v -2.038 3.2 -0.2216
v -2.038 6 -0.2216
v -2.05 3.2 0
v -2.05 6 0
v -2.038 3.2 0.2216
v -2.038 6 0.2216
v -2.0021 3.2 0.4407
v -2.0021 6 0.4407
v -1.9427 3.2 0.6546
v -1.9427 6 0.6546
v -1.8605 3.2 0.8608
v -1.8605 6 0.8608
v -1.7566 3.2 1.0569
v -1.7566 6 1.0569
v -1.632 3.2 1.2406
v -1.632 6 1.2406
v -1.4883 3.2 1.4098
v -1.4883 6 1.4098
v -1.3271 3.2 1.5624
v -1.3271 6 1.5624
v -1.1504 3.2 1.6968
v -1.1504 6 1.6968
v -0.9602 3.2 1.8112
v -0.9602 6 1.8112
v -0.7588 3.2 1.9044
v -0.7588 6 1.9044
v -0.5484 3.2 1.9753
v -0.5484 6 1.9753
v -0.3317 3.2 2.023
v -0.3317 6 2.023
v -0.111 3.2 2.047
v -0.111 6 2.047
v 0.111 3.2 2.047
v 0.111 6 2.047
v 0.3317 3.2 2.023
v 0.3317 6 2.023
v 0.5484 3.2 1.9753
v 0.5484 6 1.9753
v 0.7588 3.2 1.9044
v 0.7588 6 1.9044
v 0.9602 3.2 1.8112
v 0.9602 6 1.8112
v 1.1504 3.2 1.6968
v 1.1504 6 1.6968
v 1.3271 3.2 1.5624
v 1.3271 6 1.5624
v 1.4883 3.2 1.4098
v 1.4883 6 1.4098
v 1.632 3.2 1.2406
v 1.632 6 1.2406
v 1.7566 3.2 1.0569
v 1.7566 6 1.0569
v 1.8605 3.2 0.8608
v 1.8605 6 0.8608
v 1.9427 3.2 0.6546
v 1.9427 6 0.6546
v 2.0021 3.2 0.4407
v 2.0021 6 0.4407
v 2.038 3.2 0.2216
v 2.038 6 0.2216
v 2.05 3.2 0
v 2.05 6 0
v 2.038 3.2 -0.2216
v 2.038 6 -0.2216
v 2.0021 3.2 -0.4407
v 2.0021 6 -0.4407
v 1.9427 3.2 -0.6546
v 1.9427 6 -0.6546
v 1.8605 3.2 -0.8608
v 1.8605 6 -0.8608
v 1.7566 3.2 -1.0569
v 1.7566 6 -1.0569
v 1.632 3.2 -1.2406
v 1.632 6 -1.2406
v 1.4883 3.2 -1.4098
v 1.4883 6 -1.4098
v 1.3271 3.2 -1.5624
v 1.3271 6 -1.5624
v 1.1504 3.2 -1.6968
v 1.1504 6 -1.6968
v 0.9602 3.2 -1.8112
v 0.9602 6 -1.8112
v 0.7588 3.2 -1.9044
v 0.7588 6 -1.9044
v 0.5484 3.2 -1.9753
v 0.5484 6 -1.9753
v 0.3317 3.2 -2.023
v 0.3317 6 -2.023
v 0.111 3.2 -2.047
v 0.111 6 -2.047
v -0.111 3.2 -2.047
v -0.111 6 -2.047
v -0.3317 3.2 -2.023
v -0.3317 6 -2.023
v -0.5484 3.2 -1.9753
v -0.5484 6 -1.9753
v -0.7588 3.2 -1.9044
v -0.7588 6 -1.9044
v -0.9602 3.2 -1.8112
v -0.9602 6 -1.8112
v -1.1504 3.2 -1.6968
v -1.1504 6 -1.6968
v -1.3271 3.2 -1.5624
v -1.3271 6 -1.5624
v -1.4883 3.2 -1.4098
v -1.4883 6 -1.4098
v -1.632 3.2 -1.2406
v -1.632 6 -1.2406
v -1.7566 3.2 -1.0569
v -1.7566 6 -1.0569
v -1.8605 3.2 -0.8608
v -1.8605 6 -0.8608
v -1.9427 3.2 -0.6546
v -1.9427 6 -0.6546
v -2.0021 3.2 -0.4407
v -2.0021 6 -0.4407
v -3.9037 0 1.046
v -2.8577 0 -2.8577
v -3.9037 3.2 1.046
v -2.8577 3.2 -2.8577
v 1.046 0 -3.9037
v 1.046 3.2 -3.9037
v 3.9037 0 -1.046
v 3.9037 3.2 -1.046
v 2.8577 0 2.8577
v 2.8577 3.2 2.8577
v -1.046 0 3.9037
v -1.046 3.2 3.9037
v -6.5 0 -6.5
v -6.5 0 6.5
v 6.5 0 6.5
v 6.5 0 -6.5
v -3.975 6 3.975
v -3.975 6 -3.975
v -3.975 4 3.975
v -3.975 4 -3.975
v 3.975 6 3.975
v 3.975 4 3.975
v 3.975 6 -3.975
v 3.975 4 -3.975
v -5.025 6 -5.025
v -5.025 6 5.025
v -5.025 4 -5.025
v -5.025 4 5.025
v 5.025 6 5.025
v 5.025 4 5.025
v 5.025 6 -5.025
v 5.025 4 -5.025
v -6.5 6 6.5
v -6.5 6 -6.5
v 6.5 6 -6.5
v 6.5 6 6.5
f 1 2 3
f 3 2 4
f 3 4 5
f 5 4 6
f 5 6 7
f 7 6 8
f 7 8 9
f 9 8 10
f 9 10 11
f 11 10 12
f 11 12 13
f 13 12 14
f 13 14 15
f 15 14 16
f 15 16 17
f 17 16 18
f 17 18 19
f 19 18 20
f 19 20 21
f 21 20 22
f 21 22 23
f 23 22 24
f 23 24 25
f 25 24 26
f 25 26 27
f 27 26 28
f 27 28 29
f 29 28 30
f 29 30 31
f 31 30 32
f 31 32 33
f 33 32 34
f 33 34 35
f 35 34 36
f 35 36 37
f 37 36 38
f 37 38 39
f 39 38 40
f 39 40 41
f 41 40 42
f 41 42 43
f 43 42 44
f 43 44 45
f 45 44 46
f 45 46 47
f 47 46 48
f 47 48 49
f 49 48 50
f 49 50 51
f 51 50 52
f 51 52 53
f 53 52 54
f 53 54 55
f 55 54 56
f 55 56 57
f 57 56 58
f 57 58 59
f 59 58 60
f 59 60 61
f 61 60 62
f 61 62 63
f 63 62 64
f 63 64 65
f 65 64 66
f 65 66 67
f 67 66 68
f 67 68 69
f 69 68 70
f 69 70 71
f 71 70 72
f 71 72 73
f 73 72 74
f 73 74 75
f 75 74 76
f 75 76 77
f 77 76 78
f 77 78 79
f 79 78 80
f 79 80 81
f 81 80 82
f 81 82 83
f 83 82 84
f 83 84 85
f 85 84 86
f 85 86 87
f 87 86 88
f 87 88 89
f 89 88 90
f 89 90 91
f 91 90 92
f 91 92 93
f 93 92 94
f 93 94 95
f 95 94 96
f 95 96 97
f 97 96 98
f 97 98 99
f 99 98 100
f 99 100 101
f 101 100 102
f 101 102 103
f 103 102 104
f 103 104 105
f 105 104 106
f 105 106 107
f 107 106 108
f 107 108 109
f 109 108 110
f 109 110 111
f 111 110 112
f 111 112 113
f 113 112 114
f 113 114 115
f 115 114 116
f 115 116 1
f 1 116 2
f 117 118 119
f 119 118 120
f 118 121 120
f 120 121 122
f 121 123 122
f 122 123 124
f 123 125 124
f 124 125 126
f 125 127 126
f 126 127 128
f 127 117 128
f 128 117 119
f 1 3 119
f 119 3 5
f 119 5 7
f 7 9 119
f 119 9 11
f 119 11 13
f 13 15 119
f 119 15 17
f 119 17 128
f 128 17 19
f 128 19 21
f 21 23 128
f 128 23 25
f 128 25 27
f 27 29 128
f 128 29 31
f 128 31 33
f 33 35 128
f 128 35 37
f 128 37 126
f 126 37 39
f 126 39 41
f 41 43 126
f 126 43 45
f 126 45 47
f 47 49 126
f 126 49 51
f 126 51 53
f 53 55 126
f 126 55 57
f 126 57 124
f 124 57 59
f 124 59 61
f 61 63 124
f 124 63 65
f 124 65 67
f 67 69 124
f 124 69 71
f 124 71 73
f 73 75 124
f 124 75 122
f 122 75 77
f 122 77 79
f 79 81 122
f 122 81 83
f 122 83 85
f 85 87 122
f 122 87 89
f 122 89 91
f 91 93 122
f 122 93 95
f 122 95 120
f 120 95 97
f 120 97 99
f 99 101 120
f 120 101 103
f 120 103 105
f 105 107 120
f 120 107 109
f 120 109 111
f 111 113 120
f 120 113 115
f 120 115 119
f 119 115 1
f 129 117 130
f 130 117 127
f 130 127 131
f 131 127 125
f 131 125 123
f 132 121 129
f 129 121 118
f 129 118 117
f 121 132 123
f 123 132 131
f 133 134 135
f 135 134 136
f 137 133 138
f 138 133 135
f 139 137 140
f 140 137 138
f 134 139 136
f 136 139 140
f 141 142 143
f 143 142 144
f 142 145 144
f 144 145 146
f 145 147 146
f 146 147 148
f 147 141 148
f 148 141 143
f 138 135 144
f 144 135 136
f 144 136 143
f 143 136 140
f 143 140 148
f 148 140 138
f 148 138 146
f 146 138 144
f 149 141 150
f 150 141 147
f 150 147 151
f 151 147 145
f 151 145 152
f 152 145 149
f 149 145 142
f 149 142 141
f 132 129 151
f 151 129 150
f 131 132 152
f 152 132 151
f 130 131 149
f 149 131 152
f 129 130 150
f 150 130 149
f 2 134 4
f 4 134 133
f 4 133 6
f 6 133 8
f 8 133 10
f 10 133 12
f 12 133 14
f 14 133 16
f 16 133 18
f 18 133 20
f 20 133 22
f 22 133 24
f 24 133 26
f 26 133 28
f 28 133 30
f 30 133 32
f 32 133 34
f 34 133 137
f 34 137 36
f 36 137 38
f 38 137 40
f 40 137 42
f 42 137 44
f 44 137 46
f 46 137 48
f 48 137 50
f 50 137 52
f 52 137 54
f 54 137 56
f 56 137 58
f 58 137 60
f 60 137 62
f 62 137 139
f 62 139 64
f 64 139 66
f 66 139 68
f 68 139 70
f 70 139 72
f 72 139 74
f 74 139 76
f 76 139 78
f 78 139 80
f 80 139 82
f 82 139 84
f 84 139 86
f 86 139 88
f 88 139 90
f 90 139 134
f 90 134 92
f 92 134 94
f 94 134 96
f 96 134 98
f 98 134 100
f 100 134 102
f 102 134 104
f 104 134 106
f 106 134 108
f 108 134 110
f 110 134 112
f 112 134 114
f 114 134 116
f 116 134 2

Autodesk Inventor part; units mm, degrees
ref_plane "YZ Plane" through (0, 0, 0) normal (1, 0, 0) x (0, 1, 0)
ref_plane "XY Plane" through (0, 0, 0) normal (0, 0, 1) x (1, 0, 0)
ref_plane "作業平面2" through (0, 6, 0) normal (0, 1, 0) x (-1, 0, 0)
sketch "スケッチ3" plane through (0, 6, 0) normal (0, 1, 0) x (-1, 0, 0)
  line L0 (3.975, -3.975) -> (-3.975, -3.975)
  line L1 (-3.975, -3.975) -> (-3.975, 3.975)
  line L2 (-3.975, 3.975) -> (3.975, 3.975)
  line L3 (3.975, 3.975) -> (3.975, -3.975)
  line L4 (3.975, -3.975) -> (-3.975, 3.975) construction
  line L5 (-3.975, -3.975) -> (3.975, 3.975) construction
  line L6 (5.025, -5.025) -> (-5.025, -5.025)
  line L7 (-5.025, -5.025) -> (-5.025, 5.025)
  line L8 (-5.025, 5.025) -> (5.025, 5.025)
  line L9 (5.025, 5.025) -> (5.025, -5.025)
  line L10 (5.025, -5.025) -> (-5.025, 5.025) construction
  line L11 (-5.025, -5.025) -> (5.025, 5.025) construction
  point P0 (0, 0)
  point P1 (0, 0)
  dimension "d19" = 7.95
  dimension "d20" = 7.95
  dimension "d21" = 10.05
  dimension "d22" = 10.05
sketch "スケッチ1" plane through (0, 0, 0) normal (0, 1, 0) x (-1, 0, 0)
  line L0 (6.5, -6.5) -> (-6.5, 6.5) construction
  line L1 (-6.5, -6.5) -> (6.5, 6.5) construction
  line L2 (1.046, 3.9037) -> (3.9037, 1.046)
  line L3 (3.9037, 1.046) -> (2.8577, -2.8577)
  line L4 (2.8577, -2.8577) -> (-1.046, -3.9037)
  line L5 (-1.046, -3.9037) -> (-3.9037, -1.046)
  line L6 (-3.9037, -1.046) -> (-2.8577, 2.8577)
  line L7 (-2.8577, 2.8577) -> (1.046, 3.9037)
  line L8 (-6.5, -6.5) -> (6.5, -6.5)
  line L9 (6.5, -6.5) -> (6.5, 6.5)
  line L10 (6.5, 6.5) -> (-6.5, 6.5)
  line L11 (-6.5, 6.5) -> (-6.5, -6.5)
  line L12 (-6.5, -6.5) -> (6.5, 6.5) construction
  line L13 (6.5, -6.5) -> (-6.5, 6.5) construction
  circle A0 centre (0, 0) radius 2.05
  dimension "d33" = 7
  dimension "d34" = 13
  dimension "d35" = 13
  dimension "d36" = 4.1
extrude "押し出し8" add sketch "スケッチ1" along normal blind 6 contours L2 L3 L4 L5 L6 L7 | L11 L10 L9 L8 | A0
extrude "押し出し9" cut sketch "スケッチ3" against normal blind 2
extrude "押し出し10" cut sketch "スケッチ1" along normal blind 3.2 contours L2 L3 L4 L5 L6 L7
extrude "押し出し11" cut sketch "スケッチ1" along normal blind 6 contours A0
properties part number "pin_joint_ver2_1"
